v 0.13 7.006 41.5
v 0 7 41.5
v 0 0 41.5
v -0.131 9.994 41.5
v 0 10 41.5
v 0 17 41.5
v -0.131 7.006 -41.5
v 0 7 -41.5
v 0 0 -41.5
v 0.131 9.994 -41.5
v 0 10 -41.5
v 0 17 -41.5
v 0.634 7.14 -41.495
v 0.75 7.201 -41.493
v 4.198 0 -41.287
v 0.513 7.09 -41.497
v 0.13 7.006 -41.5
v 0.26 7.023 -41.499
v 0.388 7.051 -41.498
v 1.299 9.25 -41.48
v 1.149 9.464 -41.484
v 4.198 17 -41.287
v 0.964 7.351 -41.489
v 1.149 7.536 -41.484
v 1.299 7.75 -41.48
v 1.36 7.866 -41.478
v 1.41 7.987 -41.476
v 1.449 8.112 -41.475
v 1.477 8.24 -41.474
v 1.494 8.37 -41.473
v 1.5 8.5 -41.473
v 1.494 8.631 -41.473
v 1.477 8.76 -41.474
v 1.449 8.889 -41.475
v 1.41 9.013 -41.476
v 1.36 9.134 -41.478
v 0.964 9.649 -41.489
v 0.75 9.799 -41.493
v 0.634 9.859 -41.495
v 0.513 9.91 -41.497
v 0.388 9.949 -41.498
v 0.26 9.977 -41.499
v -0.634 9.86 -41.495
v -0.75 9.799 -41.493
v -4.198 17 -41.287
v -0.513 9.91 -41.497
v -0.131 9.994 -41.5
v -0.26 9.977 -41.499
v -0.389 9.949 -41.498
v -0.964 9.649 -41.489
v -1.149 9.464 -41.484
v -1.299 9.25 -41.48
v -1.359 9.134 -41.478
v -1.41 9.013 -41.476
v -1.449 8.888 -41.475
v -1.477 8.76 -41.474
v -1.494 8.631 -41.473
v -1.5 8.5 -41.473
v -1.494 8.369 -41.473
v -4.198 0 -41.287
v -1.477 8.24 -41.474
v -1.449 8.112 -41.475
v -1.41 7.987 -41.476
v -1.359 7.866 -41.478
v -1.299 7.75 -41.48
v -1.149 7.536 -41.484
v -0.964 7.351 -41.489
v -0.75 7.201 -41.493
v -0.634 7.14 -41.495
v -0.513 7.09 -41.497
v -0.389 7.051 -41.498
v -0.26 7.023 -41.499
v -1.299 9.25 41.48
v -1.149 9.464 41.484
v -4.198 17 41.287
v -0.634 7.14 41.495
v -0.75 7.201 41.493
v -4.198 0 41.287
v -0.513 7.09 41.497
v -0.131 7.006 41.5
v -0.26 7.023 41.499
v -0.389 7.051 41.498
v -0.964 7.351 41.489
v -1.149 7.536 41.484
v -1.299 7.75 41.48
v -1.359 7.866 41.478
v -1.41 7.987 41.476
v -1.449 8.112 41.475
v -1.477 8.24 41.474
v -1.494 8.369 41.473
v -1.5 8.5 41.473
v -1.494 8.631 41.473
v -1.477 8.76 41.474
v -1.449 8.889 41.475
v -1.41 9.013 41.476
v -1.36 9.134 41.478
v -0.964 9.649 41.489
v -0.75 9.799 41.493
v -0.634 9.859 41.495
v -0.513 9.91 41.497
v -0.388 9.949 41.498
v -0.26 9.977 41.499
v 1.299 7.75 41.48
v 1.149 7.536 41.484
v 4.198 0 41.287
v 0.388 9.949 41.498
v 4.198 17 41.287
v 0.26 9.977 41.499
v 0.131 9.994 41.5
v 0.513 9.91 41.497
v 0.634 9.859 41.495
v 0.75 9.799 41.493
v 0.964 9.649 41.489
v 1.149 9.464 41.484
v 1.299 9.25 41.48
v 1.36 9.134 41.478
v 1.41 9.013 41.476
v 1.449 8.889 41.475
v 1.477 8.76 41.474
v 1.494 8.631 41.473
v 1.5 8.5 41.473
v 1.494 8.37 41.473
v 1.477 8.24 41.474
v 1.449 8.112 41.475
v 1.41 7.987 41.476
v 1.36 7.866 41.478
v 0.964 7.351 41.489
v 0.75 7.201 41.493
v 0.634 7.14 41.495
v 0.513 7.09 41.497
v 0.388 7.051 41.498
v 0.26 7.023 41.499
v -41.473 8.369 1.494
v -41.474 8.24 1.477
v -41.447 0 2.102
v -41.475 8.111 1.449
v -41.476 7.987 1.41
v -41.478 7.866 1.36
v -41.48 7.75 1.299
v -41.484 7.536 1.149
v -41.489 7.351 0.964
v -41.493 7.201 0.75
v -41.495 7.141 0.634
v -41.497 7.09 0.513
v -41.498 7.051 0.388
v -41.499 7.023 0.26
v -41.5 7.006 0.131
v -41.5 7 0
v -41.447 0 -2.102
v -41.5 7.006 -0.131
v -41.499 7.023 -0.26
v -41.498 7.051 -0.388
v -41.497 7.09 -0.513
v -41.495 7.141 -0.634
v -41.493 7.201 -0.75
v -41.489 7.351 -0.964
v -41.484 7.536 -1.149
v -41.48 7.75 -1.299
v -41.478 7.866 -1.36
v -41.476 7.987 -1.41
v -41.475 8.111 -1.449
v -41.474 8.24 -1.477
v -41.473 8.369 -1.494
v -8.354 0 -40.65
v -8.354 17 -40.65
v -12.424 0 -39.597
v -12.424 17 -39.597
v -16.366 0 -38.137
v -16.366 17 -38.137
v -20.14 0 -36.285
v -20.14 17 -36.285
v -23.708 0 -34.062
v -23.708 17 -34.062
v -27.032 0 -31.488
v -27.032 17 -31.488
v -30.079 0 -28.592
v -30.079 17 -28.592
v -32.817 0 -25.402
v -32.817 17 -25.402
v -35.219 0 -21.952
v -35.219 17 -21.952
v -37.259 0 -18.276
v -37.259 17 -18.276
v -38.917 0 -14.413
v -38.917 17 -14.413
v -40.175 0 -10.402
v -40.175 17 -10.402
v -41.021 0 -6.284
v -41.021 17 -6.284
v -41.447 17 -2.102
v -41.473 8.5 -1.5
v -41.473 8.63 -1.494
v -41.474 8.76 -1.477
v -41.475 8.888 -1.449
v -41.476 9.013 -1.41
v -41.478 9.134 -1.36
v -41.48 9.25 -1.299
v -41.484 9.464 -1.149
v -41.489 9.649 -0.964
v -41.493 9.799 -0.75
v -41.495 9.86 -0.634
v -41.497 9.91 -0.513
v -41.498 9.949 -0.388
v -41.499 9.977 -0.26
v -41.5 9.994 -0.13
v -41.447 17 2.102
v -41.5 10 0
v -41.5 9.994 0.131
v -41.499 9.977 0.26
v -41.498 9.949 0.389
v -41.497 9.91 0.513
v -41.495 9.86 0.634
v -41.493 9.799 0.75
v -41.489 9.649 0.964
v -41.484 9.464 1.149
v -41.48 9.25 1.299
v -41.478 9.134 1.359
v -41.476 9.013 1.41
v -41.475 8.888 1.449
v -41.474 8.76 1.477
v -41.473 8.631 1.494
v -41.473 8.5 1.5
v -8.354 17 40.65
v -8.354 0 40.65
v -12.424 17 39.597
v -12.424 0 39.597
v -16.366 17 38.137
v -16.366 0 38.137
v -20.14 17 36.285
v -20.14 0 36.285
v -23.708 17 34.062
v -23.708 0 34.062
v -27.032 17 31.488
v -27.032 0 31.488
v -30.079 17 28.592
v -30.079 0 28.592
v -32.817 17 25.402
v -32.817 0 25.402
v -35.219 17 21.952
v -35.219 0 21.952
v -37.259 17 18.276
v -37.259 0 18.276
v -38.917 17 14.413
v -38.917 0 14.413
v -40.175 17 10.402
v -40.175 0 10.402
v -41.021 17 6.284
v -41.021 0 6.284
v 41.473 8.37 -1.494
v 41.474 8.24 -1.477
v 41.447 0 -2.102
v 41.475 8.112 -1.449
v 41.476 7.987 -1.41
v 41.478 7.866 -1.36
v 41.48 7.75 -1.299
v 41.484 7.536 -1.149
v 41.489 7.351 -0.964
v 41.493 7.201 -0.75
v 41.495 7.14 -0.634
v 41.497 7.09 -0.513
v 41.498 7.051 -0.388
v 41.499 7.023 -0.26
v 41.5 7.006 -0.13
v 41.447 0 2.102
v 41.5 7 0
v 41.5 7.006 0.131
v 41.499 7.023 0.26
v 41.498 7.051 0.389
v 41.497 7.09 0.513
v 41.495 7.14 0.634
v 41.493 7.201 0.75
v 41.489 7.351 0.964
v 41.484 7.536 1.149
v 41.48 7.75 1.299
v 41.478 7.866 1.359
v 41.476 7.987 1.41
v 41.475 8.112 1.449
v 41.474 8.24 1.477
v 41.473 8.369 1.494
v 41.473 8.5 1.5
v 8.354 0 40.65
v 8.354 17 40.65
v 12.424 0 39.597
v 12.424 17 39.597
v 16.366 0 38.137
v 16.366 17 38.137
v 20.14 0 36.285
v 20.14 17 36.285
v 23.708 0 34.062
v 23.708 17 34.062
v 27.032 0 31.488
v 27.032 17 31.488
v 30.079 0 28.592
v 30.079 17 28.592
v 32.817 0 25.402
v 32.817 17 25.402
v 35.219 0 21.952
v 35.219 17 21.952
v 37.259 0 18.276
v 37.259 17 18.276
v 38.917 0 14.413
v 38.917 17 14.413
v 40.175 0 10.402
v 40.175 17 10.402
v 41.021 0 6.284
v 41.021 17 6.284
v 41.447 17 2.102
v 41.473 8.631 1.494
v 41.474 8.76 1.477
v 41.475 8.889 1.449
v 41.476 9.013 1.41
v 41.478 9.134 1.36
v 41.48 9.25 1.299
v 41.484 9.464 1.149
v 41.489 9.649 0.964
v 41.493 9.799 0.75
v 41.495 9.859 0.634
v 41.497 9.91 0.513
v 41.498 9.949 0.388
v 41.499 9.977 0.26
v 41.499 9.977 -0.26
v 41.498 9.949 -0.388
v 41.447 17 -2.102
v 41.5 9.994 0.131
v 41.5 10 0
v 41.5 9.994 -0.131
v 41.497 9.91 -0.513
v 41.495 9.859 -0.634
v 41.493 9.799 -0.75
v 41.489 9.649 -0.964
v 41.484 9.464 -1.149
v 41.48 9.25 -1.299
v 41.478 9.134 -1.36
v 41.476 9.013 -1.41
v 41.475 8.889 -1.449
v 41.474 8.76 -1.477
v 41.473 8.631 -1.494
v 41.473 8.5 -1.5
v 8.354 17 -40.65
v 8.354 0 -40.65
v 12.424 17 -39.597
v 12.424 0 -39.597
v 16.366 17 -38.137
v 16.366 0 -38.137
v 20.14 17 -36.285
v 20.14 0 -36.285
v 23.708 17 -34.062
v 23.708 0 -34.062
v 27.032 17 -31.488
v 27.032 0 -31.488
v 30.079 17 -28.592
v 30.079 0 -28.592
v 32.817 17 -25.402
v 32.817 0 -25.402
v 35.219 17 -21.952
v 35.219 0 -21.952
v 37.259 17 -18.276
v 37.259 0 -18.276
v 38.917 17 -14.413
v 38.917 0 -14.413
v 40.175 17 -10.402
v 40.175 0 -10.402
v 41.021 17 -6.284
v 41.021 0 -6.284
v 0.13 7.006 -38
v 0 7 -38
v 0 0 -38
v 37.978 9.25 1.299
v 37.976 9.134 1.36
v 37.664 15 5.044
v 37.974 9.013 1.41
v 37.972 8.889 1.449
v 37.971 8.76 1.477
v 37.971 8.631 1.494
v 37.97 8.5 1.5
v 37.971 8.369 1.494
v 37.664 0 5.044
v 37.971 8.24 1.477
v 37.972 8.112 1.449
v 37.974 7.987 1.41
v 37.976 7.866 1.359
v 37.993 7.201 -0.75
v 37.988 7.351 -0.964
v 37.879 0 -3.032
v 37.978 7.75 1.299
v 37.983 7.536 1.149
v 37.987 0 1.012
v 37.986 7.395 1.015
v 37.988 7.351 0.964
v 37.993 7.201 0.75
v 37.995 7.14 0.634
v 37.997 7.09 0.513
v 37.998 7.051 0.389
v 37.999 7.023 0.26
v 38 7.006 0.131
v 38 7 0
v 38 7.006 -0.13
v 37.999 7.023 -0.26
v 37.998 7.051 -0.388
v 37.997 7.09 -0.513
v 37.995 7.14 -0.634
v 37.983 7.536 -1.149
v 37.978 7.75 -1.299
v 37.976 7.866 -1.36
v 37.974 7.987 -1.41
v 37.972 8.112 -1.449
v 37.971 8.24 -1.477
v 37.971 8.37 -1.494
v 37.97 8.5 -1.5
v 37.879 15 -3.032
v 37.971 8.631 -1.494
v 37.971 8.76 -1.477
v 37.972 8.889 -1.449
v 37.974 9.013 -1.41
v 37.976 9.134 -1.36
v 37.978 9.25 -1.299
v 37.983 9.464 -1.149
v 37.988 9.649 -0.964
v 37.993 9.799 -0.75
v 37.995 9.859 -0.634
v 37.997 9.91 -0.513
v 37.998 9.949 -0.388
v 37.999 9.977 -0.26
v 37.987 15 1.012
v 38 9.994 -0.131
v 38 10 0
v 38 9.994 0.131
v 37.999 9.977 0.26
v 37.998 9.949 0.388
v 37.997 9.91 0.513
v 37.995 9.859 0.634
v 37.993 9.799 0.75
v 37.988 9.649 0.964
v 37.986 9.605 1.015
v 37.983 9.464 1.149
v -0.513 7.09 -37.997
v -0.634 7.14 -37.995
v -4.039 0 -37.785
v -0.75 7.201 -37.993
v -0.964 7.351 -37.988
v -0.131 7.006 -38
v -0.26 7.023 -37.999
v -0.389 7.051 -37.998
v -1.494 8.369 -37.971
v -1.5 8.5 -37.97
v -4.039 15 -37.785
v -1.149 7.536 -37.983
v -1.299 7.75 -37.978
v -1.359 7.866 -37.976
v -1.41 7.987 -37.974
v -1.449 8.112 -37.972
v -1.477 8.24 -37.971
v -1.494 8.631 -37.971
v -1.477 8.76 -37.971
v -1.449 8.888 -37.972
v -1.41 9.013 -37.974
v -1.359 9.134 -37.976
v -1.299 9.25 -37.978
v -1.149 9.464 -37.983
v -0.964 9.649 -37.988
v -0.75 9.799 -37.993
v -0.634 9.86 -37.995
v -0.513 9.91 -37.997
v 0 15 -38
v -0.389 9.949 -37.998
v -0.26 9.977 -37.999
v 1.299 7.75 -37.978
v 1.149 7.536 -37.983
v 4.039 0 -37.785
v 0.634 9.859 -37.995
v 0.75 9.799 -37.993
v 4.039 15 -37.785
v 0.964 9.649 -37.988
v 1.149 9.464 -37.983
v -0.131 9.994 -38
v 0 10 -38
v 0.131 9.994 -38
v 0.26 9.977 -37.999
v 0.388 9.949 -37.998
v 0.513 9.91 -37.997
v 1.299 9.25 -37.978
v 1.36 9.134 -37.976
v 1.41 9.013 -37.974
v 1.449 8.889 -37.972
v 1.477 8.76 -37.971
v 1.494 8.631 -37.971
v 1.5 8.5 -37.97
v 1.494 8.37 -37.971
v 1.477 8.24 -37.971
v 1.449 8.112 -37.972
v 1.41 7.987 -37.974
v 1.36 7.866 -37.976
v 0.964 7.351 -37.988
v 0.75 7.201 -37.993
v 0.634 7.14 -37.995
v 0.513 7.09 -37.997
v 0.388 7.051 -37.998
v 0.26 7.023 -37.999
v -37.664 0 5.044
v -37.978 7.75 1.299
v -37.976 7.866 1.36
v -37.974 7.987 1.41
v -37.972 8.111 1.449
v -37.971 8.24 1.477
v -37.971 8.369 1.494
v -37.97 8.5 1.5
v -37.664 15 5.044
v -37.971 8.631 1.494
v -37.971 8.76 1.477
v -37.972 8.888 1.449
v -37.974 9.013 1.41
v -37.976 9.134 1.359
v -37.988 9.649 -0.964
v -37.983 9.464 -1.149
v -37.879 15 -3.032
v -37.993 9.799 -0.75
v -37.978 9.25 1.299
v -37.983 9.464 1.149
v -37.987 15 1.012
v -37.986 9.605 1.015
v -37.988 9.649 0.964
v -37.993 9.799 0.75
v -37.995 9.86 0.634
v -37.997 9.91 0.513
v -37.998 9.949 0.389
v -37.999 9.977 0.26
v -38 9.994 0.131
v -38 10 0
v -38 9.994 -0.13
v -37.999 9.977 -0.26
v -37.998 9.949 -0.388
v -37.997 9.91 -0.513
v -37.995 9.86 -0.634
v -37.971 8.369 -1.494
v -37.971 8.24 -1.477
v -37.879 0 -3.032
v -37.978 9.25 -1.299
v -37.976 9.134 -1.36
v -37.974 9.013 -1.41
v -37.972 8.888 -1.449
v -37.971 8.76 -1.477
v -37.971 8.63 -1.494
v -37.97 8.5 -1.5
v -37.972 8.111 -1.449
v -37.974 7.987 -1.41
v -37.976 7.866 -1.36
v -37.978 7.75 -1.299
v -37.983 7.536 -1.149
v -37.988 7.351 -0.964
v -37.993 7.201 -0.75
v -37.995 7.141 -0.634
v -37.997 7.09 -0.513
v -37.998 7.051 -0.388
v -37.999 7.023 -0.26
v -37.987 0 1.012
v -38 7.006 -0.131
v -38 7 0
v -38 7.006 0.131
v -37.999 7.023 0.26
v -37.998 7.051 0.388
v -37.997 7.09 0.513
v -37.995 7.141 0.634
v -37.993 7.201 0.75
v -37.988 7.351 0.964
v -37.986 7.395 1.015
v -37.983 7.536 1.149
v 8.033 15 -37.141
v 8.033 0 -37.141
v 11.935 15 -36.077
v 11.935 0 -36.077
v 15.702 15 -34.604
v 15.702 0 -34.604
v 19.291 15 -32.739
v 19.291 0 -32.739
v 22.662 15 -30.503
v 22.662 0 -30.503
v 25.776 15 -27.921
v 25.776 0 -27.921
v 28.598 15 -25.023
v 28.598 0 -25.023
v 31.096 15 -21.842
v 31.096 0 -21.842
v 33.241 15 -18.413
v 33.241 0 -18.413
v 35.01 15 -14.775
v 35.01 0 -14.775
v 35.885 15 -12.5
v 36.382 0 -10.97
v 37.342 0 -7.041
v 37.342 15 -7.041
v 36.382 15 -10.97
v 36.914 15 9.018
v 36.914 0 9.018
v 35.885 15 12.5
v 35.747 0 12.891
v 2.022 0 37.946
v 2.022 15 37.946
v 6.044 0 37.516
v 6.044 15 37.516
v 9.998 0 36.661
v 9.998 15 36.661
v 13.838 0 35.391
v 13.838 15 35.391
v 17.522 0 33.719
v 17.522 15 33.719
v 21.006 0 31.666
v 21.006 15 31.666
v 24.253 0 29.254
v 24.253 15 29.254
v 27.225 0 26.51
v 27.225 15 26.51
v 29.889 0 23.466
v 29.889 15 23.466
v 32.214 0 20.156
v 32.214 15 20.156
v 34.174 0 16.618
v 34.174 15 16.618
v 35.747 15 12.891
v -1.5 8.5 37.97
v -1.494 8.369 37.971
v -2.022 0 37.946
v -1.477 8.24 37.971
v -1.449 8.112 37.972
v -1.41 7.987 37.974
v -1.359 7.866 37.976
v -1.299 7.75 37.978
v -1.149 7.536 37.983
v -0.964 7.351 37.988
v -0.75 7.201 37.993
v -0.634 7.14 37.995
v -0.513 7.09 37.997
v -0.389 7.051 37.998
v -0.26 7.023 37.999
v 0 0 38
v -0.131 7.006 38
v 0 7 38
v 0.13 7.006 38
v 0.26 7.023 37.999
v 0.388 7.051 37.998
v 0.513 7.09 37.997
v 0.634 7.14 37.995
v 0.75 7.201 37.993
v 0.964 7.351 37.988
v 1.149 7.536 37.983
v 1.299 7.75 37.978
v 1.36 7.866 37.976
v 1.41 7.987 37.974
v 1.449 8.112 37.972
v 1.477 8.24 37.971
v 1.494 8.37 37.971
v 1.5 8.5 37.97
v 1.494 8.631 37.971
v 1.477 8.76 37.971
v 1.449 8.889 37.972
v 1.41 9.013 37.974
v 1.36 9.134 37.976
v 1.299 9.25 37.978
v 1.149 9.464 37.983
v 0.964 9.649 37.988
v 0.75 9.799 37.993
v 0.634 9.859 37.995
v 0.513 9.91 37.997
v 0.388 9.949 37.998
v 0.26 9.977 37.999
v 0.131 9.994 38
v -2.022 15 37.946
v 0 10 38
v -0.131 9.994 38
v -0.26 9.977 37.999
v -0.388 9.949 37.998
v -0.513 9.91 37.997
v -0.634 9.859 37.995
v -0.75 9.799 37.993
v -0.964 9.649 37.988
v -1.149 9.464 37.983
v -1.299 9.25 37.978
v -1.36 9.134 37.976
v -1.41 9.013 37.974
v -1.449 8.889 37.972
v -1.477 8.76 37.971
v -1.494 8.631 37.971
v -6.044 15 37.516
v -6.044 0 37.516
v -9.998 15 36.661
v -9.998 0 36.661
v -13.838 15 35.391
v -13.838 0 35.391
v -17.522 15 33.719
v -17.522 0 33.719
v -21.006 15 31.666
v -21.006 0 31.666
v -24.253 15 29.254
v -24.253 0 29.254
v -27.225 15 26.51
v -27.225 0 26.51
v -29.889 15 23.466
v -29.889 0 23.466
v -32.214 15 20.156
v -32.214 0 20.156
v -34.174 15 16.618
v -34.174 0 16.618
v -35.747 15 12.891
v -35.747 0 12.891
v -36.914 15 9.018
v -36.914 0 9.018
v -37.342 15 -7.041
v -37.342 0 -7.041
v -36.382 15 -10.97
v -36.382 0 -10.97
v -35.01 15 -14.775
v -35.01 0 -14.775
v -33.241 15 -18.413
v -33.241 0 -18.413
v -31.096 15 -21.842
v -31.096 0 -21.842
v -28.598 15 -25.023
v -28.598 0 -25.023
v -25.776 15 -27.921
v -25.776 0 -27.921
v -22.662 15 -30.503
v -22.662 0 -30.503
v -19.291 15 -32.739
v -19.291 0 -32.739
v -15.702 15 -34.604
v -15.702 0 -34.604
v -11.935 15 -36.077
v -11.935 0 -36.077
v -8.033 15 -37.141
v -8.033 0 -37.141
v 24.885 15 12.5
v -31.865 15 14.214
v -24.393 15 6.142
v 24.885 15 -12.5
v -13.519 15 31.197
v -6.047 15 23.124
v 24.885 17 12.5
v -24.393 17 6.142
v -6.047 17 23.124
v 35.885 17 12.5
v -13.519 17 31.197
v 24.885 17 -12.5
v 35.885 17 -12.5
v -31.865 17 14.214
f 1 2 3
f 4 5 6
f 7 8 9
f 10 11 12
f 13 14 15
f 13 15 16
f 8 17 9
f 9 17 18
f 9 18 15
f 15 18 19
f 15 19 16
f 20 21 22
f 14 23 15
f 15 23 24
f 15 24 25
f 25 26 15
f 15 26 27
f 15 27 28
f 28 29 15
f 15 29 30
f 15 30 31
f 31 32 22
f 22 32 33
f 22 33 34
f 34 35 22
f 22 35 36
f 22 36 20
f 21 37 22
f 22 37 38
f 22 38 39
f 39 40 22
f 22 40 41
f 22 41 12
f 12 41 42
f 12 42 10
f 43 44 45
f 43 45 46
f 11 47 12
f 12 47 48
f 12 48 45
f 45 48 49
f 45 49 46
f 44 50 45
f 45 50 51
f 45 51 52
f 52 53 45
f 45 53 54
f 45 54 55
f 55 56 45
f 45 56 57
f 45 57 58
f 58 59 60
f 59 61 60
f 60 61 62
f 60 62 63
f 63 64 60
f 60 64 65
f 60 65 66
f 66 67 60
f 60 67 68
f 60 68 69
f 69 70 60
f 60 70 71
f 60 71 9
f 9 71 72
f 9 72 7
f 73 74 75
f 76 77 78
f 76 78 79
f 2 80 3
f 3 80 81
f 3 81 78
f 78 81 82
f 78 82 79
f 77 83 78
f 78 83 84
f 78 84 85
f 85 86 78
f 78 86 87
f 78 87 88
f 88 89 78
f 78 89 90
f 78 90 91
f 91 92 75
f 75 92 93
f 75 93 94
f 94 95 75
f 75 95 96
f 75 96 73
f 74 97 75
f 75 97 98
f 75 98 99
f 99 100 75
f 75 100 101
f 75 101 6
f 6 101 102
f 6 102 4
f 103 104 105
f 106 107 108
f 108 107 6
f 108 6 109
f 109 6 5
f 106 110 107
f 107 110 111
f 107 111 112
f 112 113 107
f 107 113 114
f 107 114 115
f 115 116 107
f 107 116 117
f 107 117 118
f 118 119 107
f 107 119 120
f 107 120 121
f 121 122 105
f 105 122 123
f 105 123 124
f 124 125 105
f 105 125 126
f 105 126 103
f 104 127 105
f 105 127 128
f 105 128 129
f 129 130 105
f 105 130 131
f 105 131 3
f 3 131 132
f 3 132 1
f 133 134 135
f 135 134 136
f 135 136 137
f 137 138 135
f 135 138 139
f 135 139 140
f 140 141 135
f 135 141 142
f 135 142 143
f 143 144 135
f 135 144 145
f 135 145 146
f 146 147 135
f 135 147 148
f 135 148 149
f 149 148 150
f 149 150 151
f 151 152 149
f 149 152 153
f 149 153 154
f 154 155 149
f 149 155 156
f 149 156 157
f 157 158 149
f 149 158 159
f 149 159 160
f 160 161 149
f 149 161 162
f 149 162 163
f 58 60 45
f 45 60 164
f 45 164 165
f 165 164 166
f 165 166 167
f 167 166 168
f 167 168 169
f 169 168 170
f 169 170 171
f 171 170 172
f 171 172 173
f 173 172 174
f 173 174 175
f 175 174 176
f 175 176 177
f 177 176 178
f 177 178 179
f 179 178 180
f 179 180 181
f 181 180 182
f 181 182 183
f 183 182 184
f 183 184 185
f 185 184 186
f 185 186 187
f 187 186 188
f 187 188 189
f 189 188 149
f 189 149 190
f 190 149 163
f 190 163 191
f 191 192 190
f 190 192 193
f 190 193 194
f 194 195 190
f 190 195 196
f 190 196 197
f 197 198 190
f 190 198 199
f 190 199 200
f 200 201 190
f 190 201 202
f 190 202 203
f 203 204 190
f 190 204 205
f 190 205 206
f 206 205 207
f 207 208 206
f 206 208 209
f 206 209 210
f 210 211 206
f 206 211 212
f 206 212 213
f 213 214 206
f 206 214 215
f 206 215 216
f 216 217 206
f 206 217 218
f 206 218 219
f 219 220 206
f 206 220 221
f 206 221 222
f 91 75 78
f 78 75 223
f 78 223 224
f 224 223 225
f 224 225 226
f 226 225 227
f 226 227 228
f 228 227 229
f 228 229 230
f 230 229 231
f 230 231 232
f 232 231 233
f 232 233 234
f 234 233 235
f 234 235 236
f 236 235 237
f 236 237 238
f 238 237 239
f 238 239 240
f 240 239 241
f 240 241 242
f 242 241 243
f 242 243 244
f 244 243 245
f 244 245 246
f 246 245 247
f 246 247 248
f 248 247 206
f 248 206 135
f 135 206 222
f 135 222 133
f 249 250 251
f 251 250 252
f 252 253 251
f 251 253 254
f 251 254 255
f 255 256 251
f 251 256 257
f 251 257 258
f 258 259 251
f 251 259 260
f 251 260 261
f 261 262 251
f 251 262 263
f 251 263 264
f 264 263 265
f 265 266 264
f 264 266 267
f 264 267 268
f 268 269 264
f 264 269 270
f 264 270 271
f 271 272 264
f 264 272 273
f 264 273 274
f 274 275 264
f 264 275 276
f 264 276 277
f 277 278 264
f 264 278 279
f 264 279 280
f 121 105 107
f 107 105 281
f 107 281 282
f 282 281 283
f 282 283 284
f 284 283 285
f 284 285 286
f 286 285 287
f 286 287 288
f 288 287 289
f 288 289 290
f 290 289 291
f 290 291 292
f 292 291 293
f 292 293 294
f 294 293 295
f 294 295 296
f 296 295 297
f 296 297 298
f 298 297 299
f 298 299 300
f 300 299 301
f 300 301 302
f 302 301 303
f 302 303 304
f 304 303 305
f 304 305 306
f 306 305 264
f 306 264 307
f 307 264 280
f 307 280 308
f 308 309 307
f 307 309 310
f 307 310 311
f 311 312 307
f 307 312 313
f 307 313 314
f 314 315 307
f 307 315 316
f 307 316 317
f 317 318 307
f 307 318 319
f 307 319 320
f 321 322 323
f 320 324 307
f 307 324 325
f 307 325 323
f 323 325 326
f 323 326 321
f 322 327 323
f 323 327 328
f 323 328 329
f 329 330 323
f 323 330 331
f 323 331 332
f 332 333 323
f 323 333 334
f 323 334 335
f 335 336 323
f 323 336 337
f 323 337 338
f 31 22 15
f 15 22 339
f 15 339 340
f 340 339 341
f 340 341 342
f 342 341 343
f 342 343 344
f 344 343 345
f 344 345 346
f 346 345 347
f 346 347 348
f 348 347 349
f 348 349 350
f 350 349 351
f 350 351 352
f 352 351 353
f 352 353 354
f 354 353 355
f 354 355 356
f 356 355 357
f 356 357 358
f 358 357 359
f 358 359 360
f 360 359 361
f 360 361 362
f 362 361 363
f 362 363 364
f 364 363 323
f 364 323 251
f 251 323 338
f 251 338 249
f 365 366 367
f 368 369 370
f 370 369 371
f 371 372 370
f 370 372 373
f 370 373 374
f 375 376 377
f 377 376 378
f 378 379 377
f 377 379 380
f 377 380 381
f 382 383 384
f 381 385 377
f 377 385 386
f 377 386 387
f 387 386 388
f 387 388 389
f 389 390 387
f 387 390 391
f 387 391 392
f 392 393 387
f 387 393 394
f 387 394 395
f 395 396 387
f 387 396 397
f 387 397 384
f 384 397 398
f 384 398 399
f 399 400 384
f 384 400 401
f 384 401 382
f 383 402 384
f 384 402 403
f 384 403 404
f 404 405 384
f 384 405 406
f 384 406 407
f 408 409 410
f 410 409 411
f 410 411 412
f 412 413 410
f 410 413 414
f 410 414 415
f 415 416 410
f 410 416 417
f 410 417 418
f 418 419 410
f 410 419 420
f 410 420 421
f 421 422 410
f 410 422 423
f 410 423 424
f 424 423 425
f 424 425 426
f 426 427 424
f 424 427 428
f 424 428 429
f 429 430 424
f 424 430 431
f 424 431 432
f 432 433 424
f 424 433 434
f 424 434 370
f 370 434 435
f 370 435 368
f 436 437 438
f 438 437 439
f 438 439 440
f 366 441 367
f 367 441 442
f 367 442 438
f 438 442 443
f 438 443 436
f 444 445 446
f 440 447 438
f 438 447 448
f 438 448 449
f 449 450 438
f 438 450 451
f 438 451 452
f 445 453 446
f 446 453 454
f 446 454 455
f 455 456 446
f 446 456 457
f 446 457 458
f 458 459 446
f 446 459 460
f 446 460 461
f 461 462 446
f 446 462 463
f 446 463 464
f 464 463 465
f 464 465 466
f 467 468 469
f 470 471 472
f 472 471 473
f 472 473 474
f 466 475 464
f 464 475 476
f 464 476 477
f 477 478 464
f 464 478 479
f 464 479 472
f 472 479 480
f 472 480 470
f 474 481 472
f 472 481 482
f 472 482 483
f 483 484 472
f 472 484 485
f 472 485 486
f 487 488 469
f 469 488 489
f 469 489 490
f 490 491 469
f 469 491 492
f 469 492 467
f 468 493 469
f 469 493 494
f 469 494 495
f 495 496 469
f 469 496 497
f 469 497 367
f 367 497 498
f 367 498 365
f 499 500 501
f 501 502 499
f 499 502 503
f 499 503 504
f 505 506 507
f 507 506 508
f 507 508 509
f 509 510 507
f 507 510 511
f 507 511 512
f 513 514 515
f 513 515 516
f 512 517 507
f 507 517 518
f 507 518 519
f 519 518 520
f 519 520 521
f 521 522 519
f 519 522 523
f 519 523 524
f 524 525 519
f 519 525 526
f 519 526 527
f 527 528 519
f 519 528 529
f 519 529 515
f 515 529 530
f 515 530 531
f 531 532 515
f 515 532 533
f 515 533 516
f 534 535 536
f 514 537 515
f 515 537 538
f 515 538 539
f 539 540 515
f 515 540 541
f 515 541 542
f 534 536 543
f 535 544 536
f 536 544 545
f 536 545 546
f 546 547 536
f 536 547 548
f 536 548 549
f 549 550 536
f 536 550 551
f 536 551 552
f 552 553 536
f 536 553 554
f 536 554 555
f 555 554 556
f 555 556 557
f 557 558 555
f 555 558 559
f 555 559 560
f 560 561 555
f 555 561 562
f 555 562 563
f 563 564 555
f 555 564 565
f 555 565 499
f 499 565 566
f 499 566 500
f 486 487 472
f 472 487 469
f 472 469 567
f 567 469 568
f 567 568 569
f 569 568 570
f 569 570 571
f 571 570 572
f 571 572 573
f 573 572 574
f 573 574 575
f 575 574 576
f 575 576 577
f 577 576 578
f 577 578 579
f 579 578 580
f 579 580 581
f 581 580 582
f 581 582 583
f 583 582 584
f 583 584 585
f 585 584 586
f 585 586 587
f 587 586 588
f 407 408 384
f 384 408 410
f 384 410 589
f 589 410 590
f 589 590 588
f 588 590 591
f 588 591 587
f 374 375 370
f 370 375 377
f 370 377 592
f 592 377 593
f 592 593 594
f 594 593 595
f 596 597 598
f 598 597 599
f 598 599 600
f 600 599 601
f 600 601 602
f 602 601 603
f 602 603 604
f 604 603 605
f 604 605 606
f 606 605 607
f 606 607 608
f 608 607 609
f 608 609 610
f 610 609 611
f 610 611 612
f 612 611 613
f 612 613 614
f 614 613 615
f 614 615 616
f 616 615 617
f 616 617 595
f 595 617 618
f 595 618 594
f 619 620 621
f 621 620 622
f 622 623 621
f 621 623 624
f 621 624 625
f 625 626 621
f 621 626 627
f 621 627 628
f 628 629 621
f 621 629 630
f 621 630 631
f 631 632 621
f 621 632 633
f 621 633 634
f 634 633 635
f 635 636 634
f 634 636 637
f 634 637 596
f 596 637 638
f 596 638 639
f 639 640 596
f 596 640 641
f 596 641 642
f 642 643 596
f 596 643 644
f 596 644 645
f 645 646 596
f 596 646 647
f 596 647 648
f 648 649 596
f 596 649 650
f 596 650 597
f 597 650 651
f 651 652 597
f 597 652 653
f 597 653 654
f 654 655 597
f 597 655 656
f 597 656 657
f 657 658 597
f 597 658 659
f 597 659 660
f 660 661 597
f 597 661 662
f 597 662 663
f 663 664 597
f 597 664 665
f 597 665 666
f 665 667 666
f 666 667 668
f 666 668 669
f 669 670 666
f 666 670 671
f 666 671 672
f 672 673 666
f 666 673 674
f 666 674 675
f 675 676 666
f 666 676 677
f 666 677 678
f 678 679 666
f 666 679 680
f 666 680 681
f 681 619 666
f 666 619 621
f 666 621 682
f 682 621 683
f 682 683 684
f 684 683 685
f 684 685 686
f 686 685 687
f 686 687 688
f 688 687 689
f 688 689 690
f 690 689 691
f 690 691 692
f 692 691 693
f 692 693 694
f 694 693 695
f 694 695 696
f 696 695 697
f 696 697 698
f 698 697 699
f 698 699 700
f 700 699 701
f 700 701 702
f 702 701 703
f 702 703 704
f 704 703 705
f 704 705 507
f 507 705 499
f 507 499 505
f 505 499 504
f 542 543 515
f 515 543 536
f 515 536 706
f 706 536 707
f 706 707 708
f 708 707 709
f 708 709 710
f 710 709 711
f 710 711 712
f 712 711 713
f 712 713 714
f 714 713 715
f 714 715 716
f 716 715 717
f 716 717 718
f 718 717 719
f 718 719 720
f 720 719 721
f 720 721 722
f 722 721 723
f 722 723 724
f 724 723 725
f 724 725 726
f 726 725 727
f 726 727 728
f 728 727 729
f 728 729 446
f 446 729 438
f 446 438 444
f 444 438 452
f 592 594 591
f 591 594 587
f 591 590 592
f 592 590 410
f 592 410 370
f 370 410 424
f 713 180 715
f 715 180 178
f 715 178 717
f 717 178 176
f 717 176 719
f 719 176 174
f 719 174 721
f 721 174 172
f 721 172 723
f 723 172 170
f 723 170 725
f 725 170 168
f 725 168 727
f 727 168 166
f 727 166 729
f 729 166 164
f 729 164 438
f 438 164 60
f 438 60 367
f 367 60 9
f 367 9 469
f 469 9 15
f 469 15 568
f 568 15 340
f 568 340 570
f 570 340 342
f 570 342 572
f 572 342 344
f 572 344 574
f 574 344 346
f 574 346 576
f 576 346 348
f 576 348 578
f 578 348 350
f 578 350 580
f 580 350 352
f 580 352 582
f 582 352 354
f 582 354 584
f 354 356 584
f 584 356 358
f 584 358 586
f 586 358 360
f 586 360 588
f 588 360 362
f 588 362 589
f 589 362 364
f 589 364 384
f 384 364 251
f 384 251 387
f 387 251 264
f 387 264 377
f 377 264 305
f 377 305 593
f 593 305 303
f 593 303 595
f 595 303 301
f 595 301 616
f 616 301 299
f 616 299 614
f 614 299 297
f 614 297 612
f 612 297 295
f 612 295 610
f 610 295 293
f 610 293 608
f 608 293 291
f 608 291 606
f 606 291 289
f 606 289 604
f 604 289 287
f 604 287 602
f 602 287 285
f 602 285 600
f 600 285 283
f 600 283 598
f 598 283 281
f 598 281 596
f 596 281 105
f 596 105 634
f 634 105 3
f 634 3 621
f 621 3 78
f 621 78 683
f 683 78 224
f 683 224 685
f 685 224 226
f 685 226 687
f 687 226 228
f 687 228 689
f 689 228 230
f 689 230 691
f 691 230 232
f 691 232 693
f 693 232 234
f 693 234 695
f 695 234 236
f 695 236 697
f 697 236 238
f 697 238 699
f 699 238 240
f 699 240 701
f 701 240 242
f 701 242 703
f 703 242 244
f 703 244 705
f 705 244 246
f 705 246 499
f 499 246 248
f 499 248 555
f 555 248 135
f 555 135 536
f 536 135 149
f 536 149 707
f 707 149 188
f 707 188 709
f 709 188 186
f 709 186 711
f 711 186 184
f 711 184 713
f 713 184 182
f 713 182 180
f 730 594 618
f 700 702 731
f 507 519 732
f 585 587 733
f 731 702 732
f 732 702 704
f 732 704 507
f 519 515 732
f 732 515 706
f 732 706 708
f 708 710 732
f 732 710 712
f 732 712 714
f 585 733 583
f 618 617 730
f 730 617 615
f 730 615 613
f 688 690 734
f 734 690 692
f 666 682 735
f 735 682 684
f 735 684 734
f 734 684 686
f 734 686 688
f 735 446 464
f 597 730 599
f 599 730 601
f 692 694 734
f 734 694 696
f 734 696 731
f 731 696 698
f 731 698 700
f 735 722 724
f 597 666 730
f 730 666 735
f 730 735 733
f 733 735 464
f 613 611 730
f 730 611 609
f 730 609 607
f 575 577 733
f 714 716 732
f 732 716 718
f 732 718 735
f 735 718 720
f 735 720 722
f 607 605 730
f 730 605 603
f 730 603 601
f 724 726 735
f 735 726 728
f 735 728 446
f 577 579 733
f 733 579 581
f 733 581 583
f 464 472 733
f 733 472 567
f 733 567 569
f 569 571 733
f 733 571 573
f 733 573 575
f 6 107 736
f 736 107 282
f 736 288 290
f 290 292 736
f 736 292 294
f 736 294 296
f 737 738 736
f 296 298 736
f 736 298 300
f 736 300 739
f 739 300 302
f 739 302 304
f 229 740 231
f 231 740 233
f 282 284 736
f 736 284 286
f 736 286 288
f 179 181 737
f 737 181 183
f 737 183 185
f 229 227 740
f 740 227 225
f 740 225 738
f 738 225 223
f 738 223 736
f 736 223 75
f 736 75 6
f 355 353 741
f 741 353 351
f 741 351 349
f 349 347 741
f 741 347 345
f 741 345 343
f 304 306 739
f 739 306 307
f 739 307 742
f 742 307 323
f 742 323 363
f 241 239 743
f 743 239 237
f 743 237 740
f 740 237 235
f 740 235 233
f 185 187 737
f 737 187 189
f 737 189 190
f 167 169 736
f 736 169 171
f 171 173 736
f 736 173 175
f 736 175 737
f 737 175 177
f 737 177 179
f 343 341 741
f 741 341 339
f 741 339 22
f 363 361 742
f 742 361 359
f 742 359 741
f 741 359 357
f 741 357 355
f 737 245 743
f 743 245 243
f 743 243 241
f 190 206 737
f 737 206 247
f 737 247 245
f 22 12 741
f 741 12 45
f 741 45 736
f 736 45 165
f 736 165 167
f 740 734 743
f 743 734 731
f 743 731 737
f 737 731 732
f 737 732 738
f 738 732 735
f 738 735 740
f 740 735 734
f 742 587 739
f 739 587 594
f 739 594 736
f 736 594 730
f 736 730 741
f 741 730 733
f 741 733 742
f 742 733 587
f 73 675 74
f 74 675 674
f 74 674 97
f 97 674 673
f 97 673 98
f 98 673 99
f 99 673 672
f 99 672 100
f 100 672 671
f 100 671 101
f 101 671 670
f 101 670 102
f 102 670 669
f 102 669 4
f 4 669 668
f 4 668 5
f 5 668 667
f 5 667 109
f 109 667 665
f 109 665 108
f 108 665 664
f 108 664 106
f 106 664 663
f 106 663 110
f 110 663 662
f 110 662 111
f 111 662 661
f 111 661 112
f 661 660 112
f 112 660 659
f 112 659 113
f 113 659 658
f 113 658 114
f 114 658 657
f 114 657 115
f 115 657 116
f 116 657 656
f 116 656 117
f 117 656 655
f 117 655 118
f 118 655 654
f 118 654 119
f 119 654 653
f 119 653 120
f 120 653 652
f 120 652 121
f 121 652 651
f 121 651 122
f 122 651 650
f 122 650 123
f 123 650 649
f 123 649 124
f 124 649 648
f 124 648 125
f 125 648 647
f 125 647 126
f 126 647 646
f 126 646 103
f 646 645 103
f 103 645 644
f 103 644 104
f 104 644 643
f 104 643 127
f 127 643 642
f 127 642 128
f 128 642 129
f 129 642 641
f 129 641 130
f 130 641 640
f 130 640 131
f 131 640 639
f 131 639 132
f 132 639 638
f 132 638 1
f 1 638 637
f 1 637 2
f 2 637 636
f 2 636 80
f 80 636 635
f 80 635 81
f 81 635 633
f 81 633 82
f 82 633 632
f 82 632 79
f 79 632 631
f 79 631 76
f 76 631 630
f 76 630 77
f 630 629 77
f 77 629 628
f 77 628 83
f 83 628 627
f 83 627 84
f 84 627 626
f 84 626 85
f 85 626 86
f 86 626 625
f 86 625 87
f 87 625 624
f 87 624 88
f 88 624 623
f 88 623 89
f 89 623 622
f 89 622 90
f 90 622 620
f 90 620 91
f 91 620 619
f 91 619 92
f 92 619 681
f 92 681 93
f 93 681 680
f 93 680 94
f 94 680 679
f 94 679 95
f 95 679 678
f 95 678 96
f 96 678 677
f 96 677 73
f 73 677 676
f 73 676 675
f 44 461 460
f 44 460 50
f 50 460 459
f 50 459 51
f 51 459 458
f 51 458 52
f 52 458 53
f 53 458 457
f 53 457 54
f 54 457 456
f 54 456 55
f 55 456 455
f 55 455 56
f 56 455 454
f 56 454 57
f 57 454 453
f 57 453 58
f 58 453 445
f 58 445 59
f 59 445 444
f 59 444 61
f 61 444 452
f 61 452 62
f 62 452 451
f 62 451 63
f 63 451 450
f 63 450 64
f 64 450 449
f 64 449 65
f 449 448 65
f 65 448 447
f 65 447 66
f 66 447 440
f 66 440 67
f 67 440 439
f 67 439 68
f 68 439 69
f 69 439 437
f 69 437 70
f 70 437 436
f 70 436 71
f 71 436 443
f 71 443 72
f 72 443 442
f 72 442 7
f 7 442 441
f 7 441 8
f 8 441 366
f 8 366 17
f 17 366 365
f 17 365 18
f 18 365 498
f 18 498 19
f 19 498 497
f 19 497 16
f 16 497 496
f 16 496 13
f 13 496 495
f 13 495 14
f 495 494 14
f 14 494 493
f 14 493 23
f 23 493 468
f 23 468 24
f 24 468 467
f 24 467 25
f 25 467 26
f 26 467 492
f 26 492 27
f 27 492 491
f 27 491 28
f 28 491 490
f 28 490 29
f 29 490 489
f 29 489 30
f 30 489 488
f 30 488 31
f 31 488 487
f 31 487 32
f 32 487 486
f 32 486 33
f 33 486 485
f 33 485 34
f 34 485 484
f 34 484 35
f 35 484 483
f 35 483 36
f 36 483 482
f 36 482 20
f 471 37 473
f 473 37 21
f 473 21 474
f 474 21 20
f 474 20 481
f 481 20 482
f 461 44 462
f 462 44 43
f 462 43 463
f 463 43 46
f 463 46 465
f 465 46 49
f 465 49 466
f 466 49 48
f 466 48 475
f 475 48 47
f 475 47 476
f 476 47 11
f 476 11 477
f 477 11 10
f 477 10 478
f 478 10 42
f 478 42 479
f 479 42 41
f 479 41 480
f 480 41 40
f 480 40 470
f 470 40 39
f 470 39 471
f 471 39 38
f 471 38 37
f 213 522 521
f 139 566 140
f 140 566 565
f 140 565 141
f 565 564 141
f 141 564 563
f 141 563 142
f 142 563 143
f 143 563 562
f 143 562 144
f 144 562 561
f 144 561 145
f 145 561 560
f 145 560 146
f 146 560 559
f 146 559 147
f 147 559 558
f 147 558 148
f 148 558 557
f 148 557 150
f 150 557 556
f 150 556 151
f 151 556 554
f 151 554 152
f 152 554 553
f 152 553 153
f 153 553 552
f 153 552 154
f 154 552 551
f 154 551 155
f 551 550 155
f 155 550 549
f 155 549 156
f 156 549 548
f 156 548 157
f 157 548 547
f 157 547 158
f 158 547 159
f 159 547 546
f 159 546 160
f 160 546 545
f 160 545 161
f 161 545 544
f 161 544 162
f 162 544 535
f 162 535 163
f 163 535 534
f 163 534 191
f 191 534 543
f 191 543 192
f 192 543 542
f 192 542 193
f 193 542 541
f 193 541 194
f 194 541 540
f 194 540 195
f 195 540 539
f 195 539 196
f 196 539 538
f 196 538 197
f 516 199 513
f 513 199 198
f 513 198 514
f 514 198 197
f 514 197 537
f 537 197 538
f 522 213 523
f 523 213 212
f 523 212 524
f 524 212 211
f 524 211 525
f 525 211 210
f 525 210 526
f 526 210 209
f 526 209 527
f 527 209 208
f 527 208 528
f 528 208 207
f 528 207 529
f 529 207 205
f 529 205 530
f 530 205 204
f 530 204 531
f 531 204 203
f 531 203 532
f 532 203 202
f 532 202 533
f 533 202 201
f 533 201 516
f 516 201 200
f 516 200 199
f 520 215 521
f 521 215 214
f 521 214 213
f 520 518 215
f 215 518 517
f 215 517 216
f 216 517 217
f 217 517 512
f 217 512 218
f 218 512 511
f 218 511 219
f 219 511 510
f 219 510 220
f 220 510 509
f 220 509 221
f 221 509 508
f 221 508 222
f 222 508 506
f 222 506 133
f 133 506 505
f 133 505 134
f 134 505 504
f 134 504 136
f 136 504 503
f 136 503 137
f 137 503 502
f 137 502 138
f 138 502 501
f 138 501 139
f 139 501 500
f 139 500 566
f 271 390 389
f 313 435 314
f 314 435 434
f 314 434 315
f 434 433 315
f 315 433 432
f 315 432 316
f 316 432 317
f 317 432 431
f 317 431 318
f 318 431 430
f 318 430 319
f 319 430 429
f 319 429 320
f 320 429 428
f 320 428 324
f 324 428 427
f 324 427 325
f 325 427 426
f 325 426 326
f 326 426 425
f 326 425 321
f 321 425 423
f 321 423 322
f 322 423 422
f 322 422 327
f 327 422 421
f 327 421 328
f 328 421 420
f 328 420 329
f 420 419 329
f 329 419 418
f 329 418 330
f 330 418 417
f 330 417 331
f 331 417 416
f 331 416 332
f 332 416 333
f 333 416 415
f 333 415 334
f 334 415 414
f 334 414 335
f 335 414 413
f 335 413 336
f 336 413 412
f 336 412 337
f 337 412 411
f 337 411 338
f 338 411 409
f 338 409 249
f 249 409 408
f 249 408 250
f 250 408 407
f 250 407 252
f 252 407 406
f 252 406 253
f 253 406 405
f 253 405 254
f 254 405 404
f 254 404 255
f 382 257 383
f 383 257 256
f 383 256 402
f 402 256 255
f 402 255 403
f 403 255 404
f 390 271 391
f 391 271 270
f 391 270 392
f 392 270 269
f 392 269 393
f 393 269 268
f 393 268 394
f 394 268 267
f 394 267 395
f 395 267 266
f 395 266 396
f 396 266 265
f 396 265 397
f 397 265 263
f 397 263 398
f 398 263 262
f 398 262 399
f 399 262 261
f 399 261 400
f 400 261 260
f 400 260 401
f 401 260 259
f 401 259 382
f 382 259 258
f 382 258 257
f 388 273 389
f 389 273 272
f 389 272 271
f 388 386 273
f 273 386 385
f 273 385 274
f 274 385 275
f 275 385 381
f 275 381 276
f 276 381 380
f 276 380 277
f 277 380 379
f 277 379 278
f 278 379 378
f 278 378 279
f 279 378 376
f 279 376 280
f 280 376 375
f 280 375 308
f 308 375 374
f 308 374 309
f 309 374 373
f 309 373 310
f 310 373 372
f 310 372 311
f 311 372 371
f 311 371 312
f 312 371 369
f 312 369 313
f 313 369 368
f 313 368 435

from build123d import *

# Parameters (mm, degrees)
SKETCH1_R               = 41.5
SKETCH1_R_2             = 38
BOSS_EXTRUDE1_DEPTH     = 15
SKETCH2_R               = 41.5
BOSS_EXTRUDE2_DEPTH     = 2
SKETCH3_W               = 11
SKETCH3_H               = 25
CUT_EXTRUDE1_DEPTH      = 3
SKETCH4_R               = 1.5
CUT_EXTRUDE2_DEPTH      = 80
CUT_EXTRUDE2_DEPTH_BACK = 80
SKETCH5_R               = 1.5
CUT_EXTRUDE4_DEPTH      = 80
CUT_EXTRUDE4_DEPTH_BACK = 80


with BuildPart() as part:
    # Sketch1 → Boss-Extrude1 (new body)
    with BuildSketch(Plane(origin=(0, 0, 0), x_dir=(1, 0, 0), z_dir=(0, 1, 0))):
        Circle(SKETCH1_R)
        Circle(SKETCH1_R_2, mode=Mode.SUBTRACT)
    extrude(amount=BOSS_EXTRUDE1_DEPTH)

    # Sketch2 → Boss-Extrude2 (add)
    with BuildSketch(Plane(origin=(0, 15, 0), x_dir=(1, 0, 0), z_dir=(0, 1, 0))):
        Circle(SKETCH2_R)
    extrude(amount=BOSS_EXTRUDE2_DEPTH)

    # Sketch3 → Cut-Extrude1 (cut)
    with BuildSketch(Plane(origin=(0, 17, 0), x_dir=(1, 0, 0), z_dir=(0, 1, 0))):
        Polygon((-6.046682172, -23.124314263), (-13.51904975, -31.19671928), (-31.86542479, -14.214065692), (-24.393057211, -6.141660674), align=None)
        with Locations((30.385233732, 0)):
            Rectangle(SKETCH3_W, SKETCH3_H)
    extrude(amount=-CUT_EXTRUDE1_DEPTH, mode=Mode.SUBTRACT)

    # Sketch4 → Cut-Extrude2 (cut, two sides)
    with BuildSketch(Plane.XY) as cut_extrude2_sk:
        with Locations((0, 8.5)):
            Circle(SKETCH4_R)
    extrude(amount=CUT_EXTRUDE2_DEPTH, mode=Mode.SUBTRACT)
    extrude(cut_extrude2_sk.sketch, amount=-CUT_EXTRUDE2_DEPTH_BACK, mode=Mode.SUBTRACT)

    # Sketch5 → Cut-Extrude4 (cut, two sides)
    with BuildSketch(Plane(origin=(0, 0, 0), x_dir=(0, 0, -1), z_dir=(1, 0, 0))) as cut_extrude4_sk:
        with Locations((0, 8.5)):
            Circle(SKETCH5_R)
    extrude(amount=CUT_EXTRUDE4_DEPTH, mode=Mode.SUBTRACT)
    extrude(cut_extrude4_sk.sketch, amount=-CUT_EXTRUDE4_DEPTH_BACK, mode=Mode.SUBTRACT)


solid = part.part
